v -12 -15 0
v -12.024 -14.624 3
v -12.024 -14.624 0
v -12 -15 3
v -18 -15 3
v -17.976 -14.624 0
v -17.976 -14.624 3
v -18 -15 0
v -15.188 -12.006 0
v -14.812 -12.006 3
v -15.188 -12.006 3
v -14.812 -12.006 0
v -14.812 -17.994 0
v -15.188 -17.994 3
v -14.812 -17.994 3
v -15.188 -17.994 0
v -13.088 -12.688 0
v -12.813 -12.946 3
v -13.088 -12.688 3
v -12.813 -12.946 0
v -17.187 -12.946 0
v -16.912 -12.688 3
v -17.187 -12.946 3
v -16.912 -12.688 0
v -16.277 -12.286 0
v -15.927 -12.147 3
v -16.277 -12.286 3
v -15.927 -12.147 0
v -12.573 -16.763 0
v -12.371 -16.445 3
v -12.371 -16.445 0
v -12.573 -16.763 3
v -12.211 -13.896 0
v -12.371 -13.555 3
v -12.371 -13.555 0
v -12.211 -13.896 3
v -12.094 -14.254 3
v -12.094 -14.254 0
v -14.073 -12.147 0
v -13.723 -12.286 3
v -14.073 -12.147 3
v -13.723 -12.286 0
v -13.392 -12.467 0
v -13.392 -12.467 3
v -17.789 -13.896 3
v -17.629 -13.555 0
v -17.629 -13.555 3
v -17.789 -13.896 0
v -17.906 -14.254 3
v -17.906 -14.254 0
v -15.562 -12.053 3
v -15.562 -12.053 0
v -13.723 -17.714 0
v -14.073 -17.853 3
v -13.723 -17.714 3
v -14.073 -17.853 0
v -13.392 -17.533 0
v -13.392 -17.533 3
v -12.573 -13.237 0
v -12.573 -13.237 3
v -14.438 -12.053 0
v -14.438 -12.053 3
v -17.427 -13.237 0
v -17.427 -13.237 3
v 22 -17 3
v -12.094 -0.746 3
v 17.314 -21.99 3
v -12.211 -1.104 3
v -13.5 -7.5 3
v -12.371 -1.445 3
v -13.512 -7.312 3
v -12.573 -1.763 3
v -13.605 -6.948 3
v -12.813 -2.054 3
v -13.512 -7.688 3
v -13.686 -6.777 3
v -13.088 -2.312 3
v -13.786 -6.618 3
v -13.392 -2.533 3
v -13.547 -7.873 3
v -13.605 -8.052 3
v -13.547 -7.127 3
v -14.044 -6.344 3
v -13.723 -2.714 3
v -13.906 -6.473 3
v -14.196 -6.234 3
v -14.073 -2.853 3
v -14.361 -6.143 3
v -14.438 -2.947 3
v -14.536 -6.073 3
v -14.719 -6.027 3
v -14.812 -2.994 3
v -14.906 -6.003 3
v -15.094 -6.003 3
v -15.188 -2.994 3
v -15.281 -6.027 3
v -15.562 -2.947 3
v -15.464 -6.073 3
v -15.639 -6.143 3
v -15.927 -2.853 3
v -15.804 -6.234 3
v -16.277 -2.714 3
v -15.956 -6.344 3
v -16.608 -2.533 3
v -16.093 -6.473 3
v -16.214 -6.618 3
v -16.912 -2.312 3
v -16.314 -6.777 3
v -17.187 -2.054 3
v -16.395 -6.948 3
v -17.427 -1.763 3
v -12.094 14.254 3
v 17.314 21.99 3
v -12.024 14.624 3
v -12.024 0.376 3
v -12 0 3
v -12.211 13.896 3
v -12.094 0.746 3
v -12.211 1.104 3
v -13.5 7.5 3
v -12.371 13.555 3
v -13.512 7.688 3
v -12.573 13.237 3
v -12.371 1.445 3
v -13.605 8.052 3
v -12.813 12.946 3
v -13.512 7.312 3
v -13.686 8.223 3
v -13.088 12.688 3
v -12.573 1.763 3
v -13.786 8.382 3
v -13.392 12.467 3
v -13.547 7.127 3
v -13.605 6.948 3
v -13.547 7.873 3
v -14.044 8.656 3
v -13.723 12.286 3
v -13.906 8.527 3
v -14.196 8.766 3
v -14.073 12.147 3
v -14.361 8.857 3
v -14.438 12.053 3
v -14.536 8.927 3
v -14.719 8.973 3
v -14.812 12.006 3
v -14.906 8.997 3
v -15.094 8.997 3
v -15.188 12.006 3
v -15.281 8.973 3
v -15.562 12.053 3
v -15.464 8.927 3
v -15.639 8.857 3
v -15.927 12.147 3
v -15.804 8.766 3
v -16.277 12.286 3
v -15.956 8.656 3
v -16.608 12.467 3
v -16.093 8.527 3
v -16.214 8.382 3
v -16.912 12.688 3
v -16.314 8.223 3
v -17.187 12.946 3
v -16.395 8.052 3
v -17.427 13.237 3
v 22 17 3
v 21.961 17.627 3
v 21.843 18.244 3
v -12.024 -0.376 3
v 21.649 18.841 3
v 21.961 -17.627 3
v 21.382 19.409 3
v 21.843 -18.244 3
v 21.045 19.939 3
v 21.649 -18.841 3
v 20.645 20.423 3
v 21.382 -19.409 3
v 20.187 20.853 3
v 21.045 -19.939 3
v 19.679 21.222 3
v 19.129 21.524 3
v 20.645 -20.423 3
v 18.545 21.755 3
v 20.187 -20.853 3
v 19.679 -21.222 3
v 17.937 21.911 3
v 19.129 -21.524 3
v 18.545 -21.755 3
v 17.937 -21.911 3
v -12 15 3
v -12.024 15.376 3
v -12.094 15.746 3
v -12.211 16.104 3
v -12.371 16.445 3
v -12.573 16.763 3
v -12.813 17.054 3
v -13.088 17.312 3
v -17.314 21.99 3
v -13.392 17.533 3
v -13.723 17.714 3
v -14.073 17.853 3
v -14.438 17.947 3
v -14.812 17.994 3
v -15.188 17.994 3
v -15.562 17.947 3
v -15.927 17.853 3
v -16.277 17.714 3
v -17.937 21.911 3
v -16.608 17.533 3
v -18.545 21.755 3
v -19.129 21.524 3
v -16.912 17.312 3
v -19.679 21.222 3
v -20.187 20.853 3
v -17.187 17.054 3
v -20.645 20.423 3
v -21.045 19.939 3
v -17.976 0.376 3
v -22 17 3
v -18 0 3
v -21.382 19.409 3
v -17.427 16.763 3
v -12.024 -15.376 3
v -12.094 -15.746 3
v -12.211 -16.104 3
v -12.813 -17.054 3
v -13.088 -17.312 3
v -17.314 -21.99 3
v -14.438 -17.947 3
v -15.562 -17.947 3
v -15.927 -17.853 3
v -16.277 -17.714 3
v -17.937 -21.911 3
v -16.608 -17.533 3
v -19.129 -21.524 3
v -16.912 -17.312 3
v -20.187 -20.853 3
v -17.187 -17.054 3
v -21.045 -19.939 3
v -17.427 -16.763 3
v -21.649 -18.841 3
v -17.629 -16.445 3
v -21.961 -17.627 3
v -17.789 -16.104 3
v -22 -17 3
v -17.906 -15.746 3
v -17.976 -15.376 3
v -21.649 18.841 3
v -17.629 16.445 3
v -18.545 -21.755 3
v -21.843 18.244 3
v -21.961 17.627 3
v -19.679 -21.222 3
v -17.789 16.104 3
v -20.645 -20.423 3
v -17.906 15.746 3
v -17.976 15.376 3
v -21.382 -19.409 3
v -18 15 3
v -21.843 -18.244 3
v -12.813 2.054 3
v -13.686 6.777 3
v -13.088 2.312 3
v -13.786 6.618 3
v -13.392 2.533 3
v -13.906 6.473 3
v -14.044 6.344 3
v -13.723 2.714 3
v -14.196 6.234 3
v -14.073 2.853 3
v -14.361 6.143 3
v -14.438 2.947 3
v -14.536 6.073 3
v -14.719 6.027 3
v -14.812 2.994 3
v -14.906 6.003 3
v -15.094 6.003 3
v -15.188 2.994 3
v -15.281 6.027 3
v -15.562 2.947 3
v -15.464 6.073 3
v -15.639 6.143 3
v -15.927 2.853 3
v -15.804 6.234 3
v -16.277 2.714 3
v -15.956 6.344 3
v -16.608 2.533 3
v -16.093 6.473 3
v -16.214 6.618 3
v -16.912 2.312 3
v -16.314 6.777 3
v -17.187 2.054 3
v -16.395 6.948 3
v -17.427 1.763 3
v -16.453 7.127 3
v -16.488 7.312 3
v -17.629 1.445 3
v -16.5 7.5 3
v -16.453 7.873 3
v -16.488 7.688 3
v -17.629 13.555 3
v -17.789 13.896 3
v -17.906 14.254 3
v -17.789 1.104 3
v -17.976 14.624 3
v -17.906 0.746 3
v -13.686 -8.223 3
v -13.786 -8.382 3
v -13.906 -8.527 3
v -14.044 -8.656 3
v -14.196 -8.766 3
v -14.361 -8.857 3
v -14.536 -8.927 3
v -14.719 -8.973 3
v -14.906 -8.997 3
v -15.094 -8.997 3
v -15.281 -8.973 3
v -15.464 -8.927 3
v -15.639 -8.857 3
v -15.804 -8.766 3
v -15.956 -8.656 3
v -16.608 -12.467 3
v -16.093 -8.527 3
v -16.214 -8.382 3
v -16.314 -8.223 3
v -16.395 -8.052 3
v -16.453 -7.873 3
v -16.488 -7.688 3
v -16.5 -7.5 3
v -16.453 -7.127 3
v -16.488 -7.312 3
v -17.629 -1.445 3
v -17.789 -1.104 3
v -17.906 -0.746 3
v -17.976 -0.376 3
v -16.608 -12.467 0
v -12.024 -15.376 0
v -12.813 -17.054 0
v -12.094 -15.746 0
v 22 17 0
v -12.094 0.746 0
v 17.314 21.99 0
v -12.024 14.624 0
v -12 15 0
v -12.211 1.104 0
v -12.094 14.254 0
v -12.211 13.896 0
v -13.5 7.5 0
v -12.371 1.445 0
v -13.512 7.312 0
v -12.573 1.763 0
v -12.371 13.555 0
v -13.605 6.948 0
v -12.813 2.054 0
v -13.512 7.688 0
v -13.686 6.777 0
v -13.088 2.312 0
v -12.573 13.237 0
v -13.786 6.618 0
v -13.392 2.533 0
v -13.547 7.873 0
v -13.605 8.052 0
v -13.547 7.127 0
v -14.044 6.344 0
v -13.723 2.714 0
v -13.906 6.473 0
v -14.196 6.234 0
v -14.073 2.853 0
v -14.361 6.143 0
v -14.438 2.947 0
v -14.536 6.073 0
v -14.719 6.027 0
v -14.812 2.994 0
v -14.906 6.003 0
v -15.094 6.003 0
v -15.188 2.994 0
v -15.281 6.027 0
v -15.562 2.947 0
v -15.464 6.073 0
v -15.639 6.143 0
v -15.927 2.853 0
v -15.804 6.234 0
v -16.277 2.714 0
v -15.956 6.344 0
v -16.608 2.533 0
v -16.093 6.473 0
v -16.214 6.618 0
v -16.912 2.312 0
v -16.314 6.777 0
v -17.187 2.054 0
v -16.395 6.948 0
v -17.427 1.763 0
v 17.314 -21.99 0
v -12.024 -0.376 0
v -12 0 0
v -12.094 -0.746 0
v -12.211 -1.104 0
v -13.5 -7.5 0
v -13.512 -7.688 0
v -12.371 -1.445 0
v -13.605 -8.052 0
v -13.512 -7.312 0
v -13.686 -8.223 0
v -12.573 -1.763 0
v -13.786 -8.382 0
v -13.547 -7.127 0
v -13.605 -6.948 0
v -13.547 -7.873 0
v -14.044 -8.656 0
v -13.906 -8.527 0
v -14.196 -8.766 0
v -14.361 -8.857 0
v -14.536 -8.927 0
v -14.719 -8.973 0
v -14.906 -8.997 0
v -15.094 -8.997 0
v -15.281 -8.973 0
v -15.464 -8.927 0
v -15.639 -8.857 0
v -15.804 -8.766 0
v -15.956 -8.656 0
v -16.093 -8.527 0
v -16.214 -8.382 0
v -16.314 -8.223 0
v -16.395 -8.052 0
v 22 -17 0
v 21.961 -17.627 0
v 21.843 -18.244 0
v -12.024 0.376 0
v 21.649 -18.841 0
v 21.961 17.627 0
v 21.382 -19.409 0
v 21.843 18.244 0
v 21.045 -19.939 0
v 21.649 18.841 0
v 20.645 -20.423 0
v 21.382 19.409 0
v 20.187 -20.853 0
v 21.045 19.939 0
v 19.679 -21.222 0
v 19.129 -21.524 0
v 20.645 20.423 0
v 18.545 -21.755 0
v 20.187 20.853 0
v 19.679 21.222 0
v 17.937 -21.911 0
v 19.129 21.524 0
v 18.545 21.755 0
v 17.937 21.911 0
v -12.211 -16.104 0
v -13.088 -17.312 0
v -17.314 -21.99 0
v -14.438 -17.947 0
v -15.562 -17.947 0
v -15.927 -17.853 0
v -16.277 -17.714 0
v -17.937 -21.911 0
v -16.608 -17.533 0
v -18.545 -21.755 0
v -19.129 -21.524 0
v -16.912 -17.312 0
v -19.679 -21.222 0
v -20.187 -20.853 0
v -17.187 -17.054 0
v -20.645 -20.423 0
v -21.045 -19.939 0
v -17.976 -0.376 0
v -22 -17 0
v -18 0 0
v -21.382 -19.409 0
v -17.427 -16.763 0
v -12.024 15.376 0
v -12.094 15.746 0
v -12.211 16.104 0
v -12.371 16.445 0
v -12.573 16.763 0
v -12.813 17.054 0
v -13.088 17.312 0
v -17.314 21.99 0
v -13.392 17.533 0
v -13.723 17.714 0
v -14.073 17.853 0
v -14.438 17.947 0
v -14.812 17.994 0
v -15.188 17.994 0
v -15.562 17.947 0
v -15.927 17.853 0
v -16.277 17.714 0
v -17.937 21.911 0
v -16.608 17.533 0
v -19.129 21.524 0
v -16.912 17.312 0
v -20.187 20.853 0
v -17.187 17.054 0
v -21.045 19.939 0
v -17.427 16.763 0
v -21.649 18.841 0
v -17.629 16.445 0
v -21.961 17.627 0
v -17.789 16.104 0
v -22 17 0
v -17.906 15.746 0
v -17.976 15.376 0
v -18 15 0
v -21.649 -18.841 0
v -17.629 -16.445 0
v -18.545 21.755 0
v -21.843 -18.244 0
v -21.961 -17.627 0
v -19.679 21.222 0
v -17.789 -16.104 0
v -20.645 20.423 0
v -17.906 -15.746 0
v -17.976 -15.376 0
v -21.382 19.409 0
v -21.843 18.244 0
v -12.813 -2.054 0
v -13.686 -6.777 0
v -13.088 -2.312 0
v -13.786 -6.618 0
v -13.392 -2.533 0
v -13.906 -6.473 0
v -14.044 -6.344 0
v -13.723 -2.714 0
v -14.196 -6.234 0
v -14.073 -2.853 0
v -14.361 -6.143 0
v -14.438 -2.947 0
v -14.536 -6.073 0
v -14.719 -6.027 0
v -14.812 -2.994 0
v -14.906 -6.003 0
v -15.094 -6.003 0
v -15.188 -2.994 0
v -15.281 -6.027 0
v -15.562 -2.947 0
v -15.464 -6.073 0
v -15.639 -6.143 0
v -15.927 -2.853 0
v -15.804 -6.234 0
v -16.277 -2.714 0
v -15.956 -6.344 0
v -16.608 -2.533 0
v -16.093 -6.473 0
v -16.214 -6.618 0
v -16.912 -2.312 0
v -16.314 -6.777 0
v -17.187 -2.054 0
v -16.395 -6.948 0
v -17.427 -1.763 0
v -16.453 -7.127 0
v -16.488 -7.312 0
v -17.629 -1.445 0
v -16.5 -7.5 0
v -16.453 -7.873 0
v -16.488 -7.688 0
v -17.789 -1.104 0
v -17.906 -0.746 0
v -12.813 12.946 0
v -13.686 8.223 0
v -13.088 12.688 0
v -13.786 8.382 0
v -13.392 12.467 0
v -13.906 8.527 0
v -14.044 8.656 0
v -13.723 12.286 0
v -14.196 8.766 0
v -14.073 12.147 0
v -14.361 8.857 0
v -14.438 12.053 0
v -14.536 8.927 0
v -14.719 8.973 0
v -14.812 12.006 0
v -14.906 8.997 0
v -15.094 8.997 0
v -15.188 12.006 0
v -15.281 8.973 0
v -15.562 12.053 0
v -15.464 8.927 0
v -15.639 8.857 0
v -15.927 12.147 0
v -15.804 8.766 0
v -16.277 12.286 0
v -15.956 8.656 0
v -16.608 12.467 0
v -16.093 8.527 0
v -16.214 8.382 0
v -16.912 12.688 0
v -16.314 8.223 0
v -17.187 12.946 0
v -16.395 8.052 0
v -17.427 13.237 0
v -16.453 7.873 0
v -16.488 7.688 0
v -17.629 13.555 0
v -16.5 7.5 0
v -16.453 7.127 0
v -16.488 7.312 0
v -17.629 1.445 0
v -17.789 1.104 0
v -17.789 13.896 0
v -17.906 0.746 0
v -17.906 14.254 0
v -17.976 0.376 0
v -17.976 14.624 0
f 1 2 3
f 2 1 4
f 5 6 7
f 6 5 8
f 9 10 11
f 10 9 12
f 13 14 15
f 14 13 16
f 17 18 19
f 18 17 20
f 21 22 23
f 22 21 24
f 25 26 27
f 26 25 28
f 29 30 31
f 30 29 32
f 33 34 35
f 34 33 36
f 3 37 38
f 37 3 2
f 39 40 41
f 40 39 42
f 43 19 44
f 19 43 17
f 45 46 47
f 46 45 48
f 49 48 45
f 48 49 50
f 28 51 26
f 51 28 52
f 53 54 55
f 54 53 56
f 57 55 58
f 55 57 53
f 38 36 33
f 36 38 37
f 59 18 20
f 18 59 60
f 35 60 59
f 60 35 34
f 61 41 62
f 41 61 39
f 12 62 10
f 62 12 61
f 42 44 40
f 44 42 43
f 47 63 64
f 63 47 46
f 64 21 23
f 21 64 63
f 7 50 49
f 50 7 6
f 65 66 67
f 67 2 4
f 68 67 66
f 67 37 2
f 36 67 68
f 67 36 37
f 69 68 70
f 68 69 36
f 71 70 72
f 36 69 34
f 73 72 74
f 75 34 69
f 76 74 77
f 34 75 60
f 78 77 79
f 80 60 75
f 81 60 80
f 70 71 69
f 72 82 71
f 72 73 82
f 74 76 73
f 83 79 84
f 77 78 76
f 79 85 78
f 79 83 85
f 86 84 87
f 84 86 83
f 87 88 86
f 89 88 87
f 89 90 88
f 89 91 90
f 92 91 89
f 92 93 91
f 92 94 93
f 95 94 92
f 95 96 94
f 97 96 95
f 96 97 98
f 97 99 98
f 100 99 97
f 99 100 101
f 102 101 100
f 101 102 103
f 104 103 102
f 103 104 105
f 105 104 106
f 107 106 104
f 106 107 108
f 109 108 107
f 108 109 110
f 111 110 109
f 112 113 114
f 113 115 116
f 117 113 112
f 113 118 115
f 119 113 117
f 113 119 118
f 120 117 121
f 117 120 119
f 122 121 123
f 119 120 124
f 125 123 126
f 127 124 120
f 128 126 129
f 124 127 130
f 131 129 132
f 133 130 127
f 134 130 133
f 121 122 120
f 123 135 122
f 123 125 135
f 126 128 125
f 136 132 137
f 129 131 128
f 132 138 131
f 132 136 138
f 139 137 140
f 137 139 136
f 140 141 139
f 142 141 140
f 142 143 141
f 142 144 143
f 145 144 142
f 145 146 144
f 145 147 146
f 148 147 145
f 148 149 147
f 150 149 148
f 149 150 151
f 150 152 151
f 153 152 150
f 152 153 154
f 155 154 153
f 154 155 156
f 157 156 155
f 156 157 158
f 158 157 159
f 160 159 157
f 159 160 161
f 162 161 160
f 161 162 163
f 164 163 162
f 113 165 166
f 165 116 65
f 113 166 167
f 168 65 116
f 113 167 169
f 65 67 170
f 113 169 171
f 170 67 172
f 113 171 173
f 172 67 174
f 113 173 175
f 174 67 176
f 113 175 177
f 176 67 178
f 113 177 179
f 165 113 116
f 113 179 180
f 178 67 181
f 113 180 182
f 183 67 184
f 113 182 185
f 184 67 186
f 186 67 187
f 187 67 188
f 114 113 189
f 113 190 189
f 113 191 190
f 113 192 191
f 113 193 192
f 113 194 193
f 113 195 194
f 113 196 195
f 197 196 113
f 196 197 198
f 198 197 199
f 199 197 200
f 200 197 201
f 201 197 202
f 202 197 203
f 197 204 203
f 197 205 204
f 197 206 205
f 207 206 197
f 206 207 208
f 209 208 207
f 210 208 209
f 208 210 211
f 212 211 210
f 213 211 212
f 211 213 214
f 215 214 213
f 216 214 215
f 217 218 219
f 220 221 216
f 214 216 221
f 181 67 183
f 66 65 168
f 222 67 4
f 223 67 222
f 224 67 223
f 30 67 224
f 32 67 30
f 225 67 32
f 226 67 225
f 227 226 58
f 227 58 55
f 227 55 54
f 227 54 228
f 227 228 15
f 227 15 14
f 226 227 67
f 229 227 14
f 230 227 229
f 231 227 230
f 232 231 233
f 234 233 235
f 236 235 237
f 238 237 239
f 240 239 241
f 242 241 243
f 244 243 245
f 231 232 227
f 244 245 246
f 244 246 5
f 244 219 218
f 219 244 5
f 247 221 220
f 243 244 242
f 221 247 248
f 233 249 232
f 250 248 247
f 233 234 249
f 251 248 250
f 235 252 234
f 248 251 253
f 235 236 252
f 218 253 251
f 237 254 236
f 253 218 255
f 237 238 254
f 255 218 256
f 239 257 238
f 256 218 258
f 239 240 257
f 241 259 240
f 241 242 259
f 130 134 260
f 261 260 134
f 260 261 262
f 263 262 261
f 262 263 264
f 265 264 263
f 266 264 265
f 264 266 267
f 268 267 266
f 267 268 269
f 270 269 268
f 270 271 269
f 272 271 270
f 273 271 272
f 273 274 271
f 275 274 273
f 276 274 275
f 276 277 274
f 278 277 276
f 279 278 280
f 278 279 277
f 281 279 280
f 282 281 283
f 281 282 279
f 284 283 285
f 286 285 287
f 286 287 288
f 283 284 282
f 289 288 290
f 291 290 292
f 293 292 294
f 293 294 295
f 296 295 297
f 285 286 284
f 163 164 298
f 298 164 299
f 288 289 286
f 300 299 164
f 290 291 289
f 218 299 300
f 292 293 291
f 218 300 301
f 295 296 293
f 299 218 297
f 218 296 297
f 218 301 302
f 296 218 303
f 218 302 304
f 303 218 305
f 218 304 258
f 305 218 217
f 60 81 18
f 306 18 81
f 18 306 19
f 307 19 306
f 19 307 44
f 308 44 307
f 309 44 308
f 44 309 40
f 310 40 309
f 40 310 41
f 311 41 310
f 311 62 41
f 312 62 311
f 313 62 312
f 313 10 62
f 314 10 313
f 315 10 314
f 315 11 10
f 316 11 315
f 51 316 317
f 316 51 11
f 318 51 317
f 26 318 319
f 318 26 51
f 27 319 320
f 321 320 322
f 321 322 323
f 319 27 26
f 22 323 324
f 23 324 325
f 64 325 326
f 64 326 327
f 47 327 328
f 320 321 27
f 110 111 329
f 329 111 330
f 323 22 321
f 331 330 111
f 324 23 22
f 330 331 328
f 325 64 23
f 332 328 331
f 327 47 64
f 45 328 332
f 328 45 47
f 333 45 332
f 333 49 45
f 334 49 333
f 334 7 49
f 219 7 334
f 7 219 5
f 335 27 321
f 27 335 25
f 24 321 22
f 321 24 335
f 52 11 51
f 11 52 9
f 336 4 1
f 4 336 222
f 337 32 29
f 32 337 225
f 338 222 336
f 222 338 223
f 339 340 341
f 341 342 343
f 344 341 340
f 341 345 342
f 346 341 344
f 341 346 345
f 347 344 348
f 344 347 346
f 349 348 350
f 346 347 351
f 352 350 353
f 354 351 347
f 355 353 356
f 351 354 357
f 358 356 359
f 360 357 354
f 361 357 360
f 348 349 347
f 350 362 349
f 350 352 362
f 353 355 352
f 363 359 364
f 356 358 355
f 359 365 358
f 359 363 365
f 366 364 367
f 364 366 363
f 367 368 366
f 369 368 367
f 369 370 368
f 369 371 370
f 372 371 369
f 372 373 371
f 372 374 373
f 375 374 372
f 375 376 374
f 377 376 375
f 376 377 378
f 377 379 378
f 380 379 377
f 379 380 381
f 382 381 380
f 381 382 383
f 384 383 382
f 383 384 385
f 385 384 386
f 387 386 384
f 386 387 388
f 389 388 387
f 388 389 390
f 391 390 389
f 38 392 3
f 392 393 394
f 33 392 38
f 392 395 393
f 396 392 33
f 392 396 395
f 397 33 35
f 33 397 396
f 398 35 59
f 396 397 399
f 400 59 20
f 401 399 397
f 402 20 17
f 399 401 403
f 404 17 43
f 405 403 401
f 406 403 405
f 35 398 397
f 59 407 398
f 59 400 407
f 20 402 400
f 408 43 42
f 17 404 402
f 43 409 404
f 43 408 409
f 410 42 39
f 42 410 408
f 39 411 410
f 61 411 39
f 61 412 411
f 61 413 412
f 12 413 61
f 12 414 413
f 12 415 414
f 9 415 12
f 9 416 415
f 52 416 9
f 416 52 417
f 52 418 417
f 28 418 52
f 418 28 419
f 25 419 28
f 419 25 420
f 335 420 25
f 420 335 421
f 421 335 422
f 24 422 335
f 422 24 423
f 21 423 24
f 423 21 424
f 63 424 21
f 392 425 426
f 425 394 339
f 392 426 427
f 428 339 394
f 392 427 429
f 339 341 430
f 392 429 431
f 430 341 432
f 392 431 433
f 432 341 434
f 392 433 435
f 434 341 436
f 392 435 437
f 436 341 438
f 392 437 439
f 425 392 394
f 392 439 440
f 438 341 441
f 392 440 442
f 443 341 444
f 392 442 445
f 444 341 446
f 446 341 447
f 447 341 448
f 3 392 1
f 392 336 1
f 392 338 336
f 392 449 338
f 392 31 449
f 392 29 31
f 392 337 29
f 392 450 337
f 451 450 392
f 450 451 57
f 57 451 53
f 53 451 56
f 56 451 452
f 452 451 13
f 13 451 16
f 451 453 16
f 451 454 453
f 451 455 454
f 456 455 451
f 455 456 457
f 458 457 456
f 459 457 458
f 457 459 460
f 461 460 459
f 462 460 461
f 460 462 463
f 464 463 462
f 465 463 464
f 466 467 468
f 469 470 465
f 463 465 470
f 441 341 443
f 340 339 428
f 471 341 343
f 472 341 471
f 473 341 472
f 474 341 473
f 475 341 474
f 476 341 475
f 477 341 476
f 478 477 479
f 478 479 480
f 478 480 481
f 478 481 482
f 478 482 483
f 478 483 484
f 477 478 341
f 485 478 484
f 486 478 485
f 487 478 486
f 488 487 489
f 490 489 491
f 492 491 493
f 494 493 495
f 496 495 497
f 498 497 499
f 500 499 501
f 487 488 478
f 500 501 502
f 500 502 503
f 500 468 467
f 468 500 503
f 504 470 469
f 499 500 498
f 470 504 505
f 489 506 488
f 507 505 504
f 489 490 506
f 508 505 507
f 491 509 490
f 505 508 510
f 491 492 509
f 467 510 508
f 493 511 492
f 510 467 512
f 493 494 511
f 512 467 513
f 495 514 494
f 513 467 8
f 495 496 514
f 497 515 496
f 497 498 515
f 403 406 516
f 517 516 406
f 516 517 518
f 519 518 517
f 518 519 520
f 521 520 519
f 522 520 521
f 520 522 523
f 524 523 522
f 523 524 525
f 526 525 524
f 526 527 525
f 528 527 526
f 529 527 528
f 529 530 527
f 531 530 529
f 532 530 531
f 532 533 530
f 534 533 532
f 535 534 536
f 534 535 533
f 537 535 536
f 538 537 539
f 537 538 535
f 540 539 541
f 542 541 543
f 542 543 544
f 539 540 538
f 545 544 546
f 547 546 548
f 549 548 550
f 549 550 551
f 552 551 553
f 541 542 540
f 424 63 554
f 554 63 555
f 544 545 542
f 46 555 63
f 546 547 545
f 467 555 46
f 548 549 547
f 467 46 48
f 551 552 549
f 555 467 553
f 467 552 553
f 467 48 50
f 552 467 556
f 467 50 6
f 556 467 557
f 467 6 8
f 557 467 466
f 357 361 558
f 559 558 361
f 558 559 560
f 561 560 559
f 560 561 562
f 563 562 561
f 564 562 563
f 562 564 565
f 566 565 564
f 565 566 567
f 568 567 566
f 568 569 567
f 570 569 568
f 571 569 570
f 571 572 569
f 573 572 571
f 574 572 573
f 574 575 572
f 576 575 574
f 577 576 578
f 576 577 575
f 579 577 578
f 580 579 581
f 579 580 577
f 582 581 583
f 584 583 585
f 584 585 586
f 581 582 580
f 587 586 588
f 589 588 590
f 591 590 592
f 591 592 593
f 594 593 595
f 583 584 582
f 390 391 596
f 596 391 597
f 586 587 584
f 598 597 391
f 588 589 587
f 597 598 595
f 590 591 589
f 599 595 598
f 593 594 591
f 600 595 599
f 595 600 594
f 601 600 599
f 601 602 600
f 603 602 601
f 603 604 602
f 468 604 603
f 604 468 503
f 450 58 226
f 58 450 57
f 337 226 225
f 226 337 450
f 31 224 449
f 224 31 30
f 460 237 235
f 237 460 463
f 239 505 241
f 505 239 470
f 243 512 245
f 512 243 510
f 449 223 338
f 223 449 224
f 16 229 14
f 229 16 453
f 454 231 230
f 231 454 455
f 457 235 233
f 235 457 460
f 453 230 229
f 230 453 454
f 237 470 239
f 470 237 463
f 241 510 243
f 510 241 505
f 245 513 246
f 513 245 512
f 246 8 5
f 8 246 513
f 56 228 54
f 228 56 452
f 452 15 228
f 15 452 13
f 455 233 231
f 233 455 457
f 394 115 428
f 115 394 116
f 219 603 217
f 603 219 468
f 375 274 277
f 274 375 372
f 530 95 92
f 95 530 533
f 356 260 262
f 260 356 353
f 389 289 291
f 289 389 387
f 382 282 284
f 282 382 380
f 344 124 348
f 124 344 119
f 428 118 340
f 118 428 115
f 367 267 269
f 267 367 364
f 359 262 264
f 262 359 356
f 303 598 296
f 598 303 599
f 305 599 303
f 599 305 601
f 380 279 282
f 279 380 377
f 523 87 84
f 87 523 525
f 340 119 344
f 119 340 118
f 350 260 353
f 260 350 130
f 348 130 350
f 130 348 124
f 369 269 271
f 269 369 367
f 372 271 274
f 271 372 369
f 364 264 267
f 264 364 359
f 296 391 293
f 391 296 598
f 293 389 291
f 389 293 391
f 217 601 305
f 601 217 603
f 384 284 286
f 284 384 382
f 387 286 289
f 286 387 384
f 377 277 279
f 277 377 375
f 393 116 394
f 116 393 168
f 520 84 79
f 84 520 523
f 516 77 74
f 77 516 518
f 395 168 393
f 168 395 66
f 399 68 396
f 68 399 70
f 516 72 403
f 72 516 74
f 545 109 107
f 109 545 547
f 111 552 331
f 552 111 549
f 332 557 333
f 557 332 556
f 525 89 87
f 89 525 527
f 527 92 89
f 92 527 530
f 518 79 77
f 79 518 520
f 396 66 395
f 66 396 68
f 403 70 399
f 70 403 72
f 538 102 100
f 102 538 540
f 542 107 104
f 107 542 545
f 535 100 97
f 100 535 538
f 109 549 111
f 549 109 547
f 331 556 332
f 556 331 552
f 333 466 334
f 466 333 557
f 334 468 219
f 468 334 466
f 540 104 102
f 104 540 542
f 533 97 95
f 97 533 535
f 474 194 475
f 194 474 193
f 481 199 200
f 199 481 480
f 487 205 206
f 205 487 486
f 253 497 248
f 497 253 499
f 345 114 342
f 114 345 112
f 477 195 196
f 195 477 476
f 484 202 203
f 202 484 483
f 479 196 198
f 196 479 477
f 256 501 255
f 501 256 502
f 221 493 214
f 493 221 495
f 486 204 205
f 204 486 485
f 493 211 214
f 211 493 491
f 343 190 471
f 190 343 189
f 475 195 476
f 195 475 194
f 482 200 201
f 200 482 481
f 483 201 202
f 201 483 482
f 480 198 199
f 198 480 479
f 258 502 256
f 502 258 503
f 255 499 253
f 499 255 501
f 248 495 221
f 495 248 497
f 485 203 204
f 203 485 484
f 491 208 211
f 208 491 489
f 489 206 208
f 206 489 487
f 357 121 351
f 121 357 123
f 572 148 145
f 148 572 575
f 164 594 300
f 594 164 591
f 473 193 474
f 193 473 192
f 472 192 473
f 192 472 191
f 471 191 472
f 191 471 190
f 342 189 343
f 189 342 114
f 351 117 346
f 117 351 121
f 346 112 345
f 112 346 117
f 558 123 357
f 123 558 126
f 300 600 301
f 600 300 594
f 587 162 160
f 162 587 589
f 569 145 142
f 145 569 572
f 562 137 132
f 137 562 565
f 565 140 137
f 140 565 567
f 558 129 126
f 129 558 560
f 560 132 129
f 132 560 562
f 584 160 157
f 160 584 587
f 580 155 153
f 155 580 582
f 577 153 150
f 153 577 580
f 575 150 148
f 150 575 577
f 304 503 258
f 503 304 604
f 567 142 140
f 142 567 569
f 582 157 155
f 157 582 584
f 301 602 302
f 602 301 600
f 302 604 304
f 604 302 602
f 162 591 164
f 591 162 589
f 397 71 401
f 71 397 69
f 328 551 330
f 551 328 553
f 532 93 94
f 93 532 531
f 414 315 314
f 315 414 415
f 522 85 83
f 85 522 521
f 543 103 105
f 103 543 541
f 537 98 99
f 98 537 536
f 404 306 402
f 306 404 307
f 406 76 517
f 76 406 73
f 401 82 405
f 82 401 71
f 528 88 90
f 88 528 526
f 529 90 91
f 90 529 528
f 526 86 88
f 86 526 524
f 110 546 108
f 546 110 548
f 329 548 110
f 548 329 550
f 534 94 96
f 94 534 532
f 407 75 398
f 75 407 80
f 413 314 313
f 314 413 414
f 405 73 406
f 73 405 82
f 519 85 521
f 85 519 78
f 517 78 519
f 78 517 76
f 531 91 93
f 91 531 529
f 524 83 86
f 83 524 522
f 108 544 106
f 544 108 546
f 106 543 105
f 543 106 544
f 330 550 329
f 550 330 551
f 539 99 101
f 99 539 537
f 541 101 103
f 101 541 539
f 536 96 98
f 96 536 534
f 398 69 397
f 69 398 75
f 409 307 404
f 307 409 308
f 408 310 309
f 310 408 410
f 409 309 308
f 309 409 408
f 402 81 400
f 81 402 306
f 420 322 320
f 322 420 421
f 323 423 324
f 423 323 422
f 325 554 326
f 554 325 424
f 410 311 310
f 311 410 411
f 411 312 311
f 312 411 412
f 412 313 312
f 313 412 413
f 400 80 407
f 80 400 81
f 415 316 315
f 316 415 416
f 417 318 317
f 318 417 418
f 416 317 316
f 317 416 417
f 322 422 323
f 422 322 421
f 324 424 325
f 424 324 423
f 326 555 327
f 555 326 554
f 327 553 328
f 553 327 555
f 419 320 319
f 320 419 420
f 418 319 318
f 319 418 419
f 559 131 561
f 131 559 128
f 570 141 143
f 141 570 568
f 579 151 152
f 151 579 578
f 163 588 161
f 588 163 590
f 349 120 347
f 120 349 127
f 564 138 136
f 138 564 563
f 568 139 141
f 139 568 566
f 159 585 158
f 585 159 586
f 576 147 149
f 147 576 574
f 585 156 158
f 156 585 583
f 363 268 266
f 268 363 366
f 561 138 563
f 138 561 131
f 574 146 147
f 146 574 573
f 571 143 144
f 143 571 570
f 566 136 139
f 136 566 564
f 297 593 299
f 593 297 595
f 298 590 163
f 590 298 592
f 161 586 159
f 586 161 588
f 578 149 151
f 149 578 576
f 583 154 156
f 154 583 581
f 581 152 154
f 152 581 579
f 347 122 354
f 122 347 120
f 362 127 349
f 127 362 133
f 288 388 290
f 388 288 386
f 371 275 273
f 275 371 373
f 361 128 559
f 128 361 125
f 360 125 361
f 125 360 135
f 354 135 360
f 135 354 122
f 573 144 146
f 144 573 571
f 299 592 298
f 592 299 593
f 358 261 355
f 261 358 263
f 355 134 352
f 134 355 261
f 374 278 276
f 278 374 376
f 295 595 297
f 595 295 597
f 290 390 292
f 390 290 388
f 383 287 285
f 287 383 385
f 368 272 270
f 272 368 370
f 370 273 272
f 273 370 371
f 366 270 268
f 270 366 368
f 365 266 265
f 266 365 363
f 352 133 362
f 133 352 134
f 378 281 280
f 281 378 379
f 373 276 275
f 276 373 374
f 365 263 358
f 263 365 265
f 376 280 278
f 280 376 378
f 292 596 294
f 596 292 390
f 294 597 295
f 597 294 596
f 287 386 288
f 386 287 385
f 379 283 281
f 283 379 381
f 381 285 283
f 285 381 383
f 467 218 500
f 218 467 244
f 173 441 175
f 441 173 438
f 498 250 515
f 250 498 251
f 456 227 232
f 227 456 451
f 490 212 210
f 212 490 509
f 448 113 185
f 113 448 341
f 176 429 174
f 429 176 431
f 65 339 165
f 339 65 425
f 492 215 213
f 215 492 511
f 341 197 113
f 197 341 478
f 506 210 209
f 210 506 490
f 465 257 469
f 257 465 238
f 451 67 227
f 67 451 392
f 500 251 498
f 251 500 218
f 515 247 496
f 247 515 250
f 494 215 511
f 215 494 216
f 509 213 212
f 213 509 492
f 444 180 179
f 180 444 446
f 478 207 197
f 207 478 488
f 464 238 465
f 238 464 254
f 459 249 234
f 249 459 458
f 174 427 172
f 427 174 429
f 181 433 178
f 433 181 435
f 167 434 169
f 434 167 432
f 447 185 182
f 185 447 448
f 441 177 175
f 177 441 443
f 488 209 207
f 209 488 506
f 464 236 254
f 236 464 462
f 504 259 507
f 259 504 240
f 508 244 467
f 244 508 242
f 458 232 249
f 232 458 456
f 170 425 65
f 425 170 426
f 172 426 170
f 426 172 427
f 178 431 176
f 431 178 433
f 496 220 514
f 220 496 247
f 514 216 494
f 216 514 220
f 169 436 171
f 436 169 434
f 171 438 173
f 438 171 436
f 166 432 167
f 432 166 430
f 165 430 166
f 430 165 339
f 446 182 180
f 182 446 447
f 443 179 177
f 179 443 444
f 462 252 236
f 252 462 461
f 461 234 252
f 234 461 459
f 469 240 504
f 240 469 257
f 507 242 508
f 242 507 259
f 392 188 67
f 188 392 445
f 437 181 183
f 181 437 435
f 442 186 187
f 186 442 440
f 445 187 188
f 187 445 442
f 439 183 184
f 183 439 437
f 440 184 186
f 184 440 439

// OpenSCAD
$fn = 50;


difference() {
	union() {
		hull() {
			translate(v = [-17.0000000000, 17.0000000000, 0]) {
				cylinder(h = 3, r = 5);
			}
			translate(v = [17.0000000000, 17.0000000000, 0]) {
				cylinder(h = 3, r = 5);
			}
			translate(v = [-17.0000000000, -17.0000000000, 0]) {
				cylinder(h = 3, r = 5);
			}
			translate(v = [17.0000000000, -17.0000000000, 0]) {
				cylinder(h = 3, r = 5);
			}
		}
	}
	union() {
		translate(v = [-15.0000000000, -15.0000000000, 0]) {
			cylinder(h = 3, r = 3.0000000000);
		}
		translate(v = [-15.0000000000, 0.0000000000, 0]) {
			cylinder(h = 3, r = 3.0000000000);
		}
		translate(v = [-15.0000000000, 15.0000000000, 0]) {
			cylinder(h = 3, r = 3.0000000000);
		}
		translate(v = [-15.0000000000, -15.0000000000, 0]) {
			cylinder(h = 3, r = 1.5000000000);
		}
		translate(v = [-15.0000000000, -7.5000000000, 0]) {
			cylinder(h = 3, r = 1.5000000000);
		}
		translate(v = [-15.0000000000, 0.0000000000, 0]) {
			cylinder(h = 3, r = 1.5000000000);
		}
		translate(v = [-15.0000000000, 7.5000000000, 0]) {
			cylinder(h = 3, r = 1.5000000000);
		}
		translate(v = [-15.0000000000, 15.0000000000, 0]) {
			cylinder(h = 3, r = 1.5000000000);
		}
		translate(v = [-15.0000000000, -15.0000000000, 0]) {
			cylinder(h = 3, r = 1.5000000000);
		}
		translate(v = [-15.0000000000, -7.5000000000, 0]) {
			cylinder(h = 3, r = 1.5000000000);
		}
		translate(v = [-15.0000000000, 0.0000000000, 0]) {
			cylinder(h = 3, r = 1.5000000000);
		}
		translate(v = [-15.0000000000, 7.5000000000, 0]) {
			cylinder(h = 3, r = 1.5000000000);
		}
		translate(v = [-15.0000000000, 15.0000000000, 0]) {
			cylinder(h = 3, r = 1.5000000000);
		}
		translate(v = [-15.0000000000, -15.0000000000, 0]) {
			cylinder(h = 3, r = 1.5000000000);
		}
		translate(v = [-15.0000000000, -7.5000000000, 0]) {
			cylinder(h = 3, r = 1.5000000000);
		}
		translate(v = [-15.0000000000, 0.0000000000, 0]) {
			cylinder(h = 3, r = 1.5000000000);
		}
		translate(v = [-15.0000000000, 7.5000000000, 0]) {
			cylinder(h = 3, r = 1.5000000000);
		}
		translate(v = [-15.0000000000, 15.0000000000, 0]) {
			cylinder(h = 3, r = 1.5000000000);
		}
	}
}
